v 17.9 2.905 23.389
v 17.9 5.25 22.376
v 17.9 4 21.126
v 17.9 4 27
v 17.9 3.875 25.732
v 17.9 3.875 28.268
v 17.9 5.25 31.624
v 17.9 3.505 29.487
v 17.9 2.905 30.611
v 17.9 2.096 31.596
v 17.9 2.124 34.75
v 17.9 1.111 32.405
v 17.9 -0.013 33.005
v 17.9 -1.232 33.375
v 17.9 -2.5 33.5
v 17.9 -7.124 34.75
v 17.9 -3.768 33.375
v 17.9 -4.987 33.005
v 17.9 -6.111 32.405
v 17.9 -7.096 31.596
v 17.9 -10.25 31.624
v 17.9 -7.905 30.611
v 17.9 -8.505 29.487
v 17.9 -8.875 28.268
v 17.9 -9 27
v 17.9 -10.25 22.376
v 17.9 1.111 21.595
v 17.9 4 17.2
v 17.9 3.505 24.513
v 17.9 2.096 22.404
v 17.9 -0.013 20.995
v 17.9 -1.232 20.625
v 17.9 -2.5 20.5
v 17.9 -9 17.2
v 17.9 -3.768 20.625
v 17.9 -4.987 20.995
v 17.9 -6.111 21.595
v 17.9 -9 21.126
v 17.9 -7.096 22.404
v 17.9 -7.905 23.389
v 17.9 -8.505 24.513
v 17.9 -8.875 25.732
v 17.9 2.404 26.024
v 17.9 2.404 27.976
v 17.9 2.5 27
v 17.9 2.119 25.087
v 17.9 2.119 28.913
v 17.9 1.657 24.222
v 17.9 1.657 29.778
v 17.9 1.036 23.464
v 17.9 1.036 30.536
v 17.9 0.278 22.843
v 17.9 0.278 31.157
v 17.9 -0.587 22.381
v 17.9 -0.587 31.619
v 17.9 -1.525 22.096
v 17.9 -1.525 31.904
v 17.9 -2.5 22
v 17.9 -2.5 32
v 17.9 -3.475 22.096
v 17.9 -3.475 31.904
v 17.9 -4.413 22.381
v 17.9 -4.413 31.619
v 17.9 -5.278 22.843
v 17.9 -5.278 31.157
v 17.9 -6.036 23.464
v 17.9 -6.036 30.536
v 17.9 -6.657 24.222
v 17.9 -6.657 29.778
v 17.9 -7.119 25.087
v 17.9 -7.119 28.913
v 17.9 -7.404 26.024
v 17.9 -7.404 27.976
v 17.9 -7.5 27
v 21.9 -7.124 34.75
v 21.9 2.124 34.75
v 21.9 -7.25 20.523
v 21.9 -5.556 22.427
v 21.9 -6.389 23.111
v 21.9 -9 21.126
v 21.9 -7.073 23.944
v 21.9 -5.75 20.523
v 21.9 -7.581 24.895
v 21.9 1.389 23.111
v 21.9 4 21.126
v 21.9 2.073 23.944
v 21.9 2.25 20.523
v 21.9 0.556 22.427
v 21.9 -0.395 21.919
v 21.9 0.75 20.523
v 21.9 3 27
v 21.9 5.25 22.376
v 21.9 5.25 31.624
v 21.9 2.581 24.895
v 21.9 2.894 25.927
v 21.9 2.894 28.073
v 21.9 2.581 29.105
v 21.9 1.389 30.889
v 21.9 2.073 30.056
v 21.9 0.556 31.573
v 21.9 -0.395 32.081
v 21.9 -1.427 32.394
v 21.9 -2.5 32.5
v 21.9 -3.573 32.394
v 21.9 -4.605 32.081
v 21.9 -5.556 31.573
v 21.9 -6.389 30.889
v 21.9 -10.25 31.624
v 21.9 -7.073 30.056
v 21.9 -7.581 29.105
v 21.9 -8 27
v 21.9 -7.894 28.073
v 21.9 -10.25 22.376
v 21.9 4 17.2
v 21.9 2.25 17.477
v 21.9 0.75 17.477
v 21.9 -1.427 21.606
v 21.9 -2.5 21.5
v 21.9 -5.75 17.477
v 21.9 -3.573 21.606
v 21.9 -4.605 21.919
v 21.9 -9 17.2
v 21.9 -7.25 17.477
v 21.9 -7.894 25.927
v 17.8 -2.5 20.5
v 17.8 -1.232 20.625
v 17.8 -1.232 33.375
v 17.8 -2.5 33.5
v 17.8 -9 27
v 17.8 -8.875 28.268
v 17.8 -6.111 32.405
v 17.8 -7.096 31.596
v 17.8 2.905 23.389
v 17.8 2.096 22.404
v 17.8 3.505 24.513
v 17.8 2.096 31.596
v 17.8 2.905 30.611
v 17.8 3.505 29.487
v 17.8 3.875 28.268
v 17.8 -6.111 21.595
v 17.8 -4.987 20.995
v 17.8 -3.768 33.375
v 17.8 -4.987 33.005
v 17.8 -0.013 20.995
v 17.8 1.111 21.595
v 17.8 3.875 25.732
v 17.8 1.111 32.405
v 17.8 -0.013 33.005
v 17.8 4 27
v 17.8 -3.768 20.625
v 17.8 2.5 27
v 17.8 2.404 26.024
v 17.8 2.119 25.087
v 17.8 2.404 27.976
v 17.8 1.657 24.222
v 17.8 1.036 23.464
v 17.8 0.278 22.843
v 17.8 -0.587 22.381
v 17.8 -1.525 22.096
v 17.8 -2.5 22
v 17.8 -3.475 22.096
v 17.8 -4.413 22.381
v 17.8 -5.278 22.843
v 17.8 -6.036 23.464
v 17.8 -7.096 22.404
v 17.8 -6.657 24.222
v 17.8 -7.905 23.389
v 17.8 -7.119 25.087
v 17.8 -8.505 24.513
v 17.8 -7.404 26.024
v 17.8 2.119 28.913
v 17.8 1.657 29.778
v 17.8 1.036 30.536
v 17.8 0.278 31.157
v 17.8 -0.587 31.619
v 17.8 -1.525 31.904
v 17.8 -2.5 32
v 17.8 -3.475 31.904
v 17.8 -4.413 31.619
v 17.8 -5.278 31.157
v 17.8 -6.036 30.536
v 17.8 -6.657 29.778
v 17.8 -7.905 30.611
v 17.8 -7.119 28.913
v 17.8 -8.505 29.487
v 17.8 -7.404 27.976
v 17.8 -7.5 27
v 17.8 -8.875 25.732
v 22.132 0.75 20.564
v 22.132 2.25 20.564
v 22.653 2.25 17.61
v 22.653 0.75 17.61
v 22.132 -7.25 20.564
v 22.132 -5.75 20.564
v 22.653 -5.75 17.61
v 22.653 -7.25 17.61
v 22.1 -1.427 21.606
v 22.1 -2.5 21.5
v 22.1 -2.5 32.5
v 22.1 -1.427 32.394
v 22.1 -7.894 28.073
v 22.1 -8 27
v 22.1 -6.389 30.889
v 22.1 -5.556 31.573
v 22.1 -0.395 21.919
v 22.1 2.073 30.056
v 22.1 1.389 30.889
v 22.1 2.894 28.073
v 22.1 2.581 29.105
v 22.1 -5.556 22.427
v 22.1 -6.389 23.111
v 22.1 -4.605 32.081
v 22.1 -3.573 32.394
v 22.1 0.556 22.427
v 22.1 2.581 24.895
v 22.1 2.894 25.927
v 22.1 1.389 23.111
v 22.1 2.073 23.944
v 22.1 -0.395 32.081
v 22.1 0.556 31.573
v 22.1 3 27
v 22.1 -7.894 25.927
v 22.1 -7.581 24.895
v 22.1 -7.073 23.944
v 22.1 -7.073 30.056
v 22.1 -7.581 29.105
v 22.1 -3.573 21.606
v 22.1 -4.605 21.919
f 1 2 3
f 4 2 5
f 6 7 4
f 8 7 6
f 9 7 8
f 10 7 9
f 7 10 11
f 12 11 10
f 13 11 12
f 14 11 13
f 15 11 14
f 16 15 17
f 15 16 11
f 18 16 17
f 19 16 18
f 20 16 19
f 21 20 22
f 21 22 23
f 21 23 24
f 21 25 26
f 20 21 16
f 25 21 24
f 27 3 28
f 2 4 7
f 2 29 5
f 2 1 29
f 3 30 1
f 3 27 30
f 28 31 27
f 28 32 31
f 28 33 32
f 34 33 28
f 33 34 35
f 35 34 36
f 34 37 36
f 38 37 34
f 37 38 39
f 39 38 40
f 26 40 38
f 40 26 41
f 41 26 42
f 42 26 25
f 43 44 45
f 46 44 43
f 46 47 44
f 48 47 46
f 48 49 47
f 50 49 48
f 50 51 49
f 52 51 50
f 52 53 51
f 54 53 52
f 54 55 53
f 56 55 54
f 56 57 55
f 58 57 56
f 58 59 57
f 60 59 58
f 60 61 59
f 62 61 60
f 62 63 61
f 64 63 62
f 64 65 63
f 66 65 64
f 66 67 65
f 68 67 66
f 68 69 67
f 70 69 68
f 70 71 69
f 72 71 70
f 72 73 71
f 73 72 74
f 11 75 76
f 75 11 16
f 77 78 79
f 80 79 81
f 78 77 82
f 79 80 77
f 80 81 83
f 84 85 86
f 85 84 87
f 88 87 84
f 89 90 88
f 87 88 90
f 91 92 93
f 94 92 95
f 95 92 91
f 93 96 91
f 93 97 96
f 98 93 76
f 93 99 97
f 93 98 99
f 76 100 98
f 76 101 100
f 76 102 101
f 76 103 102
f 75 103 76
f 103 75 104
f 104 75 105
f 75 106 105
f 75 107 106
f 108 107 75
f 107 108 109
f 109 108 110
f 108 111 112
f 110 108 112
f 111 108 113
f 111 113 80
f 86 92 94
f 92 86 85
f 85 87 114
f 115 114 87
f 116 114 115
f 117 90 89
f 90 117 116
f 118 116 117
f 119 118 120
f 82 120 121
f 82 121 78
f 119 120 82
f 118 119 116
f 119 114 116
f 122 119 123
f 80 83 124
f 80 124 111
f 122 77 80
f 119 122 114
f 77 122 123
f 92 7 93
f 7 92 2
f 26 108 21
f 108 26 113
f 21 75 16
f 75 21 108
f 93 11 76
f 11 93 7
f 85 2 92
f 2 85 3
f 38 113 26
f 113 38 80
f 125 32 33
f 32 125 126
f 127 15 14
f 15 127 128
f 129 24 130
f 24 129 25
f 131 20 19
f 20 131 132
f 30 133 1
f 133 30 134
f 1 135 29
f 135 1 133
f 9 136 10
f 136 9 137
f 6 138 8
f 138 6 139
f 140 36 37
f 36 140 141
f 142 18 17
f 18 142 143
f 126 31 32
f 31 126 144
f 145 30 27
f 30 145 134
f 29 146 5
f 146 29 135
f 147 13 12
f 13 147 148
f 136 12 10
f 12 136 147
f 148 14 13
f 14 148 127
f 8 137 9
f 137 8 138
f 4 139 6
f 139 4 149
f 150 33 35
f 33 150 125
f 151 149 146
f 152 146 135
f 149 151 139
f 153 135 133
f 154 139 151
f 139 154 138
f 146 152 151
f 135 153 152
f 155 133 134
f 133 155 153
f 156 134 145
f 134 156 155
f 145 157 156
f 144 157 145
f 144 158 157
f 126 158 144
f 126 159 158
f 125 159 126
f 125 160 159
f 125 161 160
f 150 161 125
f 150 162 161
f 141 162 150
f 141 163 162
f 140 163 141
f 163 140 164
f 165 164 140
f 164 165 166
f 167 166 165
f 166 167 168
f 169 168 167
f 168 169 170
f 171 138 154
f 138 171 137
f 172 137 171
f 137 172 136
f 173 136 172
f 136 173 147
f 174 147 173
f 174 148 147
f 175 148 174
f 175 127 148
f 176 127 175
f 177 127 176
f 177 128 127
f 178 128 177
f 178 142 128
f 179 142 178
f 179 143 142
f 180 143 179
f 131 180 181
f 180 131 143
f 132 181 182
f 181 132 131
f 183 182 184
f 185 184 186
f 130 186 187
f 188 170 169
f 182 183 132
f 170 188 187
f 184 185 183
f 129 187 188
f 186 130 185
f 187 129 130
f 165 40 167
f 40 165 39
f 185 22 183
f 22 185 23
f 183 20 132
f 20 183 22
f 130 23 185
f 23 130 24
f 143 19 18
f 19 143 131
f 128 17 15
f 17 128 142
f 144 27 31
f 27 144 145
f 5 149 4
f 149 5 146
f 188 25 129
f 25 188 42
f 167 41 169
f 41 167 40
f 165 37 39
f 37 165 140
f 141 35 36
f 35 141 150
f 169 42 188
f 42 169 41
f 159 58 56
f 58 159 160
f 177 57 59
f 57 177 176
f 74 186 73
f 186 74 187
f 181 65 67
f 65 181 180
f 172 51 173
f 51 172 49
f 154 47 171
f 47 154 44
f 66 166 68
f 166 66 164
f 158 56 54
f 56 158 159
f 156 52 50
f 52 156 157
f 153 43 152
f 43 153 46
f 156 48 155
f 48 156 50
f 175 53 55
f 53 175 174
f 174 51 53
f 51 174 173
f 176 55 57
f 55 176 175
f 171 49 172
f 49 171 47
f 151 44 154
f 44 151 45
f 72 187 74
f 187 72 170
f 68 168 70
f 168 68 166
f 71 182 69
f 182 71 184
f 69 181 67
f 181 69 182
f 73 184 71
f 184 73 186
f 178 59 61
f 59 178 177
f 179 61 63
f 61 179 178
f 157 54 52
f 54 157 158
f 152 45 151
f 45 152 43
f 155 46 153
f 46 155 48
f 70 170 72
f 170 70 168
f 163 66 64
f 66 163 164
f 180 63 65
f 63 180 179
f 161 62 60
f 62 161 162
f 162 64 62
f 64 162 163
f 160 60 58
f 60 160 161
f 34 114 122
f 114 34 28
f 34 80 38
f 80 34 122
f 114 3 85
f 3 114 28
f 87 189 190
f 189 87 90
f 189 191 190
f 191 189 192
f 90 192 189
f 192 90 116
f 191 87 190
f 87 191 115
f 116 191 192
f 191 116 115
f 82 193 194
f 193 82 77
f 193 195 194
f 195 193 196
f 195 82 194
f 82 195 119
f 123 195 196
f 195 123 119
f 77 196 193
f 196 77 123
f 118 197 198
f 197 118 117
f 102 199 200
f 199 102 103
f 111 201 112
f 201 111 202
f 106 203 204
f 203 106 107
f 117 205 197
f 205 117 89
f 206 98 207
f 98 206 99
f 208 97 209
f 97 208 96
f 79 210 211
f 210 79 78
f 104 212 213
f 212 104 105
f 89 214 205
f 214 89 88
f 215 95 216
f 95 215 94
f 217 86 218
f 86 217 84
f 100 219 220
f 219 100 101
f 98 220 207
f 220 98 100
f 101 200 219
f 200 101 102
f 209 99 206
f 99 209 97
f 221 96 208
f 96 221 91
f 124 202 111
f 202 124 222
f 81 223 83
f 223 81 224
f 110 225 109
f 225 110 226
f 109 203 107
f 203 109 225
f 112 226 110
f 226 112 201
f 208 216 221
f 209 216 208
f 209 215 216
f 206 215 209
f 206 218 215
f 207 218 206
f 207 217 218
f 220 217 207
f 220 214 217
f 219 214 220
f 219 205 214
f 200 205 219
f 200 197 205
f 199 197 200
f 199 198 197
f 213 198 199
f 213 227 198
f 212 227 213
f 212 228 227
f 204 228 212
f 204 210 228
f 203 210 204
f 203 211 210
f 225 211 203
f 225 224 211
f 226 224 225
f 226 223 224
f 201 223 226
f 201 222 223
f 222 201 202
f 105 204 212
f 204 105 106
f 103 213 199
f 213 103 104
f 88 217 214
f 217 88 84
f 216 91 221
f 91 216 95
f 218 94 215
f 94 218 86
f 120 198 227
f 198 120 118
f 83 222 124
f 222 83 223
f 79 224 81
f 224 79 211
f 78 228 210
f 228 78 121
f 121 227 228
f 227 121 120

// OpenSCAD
$fn=100;


speaker();

module speaker(){
    
    //ear speakers
    //color("green", 0.4)
    translate([19.9, -2.5, 27]) 
    union(){
        color("black")
        intersection(){
        
     
            cube([4, 15.5, 15.5], center=true);
            
            rotate([45, 0, 0])
            cube([4, 17.5, 17.5], center=true);
            
        }
        
        color("black")
        translate([0, 0, -7.5])
        cube([4, 13, 4.6], center=true);
        
        //connectors
        color("silver")
        translate([2, 4, -8])
        rotate([0, -10, 0])
        cube([1, 1.5, 3], center=true);
        
        color("silver")
        translate([2, -4, -8])
        rotate([0, -10, 0])
        cube([1, 1.5, 3], center=true);
        
        //speaker magnet
        color("black")
        translate([1.9, 0, 0])
        rotate([0, 90, 0])
        cylinder(d=11, h=0.3, $fn=32);
        
        //speaker cone
        color("silver")
        difference(){
            
            translate([-2.1, 0, 0])
            rotate([0, 90, 0])
            cylinder(d=13, h=0.2, $fn=32);
            
            translate([-2.2, 0, 0])
            rotate([0, 90, 0])
            cylinder(d=10, h=0.3, $fn=32);
            
            
        }
            
        
    }
    
    
}
